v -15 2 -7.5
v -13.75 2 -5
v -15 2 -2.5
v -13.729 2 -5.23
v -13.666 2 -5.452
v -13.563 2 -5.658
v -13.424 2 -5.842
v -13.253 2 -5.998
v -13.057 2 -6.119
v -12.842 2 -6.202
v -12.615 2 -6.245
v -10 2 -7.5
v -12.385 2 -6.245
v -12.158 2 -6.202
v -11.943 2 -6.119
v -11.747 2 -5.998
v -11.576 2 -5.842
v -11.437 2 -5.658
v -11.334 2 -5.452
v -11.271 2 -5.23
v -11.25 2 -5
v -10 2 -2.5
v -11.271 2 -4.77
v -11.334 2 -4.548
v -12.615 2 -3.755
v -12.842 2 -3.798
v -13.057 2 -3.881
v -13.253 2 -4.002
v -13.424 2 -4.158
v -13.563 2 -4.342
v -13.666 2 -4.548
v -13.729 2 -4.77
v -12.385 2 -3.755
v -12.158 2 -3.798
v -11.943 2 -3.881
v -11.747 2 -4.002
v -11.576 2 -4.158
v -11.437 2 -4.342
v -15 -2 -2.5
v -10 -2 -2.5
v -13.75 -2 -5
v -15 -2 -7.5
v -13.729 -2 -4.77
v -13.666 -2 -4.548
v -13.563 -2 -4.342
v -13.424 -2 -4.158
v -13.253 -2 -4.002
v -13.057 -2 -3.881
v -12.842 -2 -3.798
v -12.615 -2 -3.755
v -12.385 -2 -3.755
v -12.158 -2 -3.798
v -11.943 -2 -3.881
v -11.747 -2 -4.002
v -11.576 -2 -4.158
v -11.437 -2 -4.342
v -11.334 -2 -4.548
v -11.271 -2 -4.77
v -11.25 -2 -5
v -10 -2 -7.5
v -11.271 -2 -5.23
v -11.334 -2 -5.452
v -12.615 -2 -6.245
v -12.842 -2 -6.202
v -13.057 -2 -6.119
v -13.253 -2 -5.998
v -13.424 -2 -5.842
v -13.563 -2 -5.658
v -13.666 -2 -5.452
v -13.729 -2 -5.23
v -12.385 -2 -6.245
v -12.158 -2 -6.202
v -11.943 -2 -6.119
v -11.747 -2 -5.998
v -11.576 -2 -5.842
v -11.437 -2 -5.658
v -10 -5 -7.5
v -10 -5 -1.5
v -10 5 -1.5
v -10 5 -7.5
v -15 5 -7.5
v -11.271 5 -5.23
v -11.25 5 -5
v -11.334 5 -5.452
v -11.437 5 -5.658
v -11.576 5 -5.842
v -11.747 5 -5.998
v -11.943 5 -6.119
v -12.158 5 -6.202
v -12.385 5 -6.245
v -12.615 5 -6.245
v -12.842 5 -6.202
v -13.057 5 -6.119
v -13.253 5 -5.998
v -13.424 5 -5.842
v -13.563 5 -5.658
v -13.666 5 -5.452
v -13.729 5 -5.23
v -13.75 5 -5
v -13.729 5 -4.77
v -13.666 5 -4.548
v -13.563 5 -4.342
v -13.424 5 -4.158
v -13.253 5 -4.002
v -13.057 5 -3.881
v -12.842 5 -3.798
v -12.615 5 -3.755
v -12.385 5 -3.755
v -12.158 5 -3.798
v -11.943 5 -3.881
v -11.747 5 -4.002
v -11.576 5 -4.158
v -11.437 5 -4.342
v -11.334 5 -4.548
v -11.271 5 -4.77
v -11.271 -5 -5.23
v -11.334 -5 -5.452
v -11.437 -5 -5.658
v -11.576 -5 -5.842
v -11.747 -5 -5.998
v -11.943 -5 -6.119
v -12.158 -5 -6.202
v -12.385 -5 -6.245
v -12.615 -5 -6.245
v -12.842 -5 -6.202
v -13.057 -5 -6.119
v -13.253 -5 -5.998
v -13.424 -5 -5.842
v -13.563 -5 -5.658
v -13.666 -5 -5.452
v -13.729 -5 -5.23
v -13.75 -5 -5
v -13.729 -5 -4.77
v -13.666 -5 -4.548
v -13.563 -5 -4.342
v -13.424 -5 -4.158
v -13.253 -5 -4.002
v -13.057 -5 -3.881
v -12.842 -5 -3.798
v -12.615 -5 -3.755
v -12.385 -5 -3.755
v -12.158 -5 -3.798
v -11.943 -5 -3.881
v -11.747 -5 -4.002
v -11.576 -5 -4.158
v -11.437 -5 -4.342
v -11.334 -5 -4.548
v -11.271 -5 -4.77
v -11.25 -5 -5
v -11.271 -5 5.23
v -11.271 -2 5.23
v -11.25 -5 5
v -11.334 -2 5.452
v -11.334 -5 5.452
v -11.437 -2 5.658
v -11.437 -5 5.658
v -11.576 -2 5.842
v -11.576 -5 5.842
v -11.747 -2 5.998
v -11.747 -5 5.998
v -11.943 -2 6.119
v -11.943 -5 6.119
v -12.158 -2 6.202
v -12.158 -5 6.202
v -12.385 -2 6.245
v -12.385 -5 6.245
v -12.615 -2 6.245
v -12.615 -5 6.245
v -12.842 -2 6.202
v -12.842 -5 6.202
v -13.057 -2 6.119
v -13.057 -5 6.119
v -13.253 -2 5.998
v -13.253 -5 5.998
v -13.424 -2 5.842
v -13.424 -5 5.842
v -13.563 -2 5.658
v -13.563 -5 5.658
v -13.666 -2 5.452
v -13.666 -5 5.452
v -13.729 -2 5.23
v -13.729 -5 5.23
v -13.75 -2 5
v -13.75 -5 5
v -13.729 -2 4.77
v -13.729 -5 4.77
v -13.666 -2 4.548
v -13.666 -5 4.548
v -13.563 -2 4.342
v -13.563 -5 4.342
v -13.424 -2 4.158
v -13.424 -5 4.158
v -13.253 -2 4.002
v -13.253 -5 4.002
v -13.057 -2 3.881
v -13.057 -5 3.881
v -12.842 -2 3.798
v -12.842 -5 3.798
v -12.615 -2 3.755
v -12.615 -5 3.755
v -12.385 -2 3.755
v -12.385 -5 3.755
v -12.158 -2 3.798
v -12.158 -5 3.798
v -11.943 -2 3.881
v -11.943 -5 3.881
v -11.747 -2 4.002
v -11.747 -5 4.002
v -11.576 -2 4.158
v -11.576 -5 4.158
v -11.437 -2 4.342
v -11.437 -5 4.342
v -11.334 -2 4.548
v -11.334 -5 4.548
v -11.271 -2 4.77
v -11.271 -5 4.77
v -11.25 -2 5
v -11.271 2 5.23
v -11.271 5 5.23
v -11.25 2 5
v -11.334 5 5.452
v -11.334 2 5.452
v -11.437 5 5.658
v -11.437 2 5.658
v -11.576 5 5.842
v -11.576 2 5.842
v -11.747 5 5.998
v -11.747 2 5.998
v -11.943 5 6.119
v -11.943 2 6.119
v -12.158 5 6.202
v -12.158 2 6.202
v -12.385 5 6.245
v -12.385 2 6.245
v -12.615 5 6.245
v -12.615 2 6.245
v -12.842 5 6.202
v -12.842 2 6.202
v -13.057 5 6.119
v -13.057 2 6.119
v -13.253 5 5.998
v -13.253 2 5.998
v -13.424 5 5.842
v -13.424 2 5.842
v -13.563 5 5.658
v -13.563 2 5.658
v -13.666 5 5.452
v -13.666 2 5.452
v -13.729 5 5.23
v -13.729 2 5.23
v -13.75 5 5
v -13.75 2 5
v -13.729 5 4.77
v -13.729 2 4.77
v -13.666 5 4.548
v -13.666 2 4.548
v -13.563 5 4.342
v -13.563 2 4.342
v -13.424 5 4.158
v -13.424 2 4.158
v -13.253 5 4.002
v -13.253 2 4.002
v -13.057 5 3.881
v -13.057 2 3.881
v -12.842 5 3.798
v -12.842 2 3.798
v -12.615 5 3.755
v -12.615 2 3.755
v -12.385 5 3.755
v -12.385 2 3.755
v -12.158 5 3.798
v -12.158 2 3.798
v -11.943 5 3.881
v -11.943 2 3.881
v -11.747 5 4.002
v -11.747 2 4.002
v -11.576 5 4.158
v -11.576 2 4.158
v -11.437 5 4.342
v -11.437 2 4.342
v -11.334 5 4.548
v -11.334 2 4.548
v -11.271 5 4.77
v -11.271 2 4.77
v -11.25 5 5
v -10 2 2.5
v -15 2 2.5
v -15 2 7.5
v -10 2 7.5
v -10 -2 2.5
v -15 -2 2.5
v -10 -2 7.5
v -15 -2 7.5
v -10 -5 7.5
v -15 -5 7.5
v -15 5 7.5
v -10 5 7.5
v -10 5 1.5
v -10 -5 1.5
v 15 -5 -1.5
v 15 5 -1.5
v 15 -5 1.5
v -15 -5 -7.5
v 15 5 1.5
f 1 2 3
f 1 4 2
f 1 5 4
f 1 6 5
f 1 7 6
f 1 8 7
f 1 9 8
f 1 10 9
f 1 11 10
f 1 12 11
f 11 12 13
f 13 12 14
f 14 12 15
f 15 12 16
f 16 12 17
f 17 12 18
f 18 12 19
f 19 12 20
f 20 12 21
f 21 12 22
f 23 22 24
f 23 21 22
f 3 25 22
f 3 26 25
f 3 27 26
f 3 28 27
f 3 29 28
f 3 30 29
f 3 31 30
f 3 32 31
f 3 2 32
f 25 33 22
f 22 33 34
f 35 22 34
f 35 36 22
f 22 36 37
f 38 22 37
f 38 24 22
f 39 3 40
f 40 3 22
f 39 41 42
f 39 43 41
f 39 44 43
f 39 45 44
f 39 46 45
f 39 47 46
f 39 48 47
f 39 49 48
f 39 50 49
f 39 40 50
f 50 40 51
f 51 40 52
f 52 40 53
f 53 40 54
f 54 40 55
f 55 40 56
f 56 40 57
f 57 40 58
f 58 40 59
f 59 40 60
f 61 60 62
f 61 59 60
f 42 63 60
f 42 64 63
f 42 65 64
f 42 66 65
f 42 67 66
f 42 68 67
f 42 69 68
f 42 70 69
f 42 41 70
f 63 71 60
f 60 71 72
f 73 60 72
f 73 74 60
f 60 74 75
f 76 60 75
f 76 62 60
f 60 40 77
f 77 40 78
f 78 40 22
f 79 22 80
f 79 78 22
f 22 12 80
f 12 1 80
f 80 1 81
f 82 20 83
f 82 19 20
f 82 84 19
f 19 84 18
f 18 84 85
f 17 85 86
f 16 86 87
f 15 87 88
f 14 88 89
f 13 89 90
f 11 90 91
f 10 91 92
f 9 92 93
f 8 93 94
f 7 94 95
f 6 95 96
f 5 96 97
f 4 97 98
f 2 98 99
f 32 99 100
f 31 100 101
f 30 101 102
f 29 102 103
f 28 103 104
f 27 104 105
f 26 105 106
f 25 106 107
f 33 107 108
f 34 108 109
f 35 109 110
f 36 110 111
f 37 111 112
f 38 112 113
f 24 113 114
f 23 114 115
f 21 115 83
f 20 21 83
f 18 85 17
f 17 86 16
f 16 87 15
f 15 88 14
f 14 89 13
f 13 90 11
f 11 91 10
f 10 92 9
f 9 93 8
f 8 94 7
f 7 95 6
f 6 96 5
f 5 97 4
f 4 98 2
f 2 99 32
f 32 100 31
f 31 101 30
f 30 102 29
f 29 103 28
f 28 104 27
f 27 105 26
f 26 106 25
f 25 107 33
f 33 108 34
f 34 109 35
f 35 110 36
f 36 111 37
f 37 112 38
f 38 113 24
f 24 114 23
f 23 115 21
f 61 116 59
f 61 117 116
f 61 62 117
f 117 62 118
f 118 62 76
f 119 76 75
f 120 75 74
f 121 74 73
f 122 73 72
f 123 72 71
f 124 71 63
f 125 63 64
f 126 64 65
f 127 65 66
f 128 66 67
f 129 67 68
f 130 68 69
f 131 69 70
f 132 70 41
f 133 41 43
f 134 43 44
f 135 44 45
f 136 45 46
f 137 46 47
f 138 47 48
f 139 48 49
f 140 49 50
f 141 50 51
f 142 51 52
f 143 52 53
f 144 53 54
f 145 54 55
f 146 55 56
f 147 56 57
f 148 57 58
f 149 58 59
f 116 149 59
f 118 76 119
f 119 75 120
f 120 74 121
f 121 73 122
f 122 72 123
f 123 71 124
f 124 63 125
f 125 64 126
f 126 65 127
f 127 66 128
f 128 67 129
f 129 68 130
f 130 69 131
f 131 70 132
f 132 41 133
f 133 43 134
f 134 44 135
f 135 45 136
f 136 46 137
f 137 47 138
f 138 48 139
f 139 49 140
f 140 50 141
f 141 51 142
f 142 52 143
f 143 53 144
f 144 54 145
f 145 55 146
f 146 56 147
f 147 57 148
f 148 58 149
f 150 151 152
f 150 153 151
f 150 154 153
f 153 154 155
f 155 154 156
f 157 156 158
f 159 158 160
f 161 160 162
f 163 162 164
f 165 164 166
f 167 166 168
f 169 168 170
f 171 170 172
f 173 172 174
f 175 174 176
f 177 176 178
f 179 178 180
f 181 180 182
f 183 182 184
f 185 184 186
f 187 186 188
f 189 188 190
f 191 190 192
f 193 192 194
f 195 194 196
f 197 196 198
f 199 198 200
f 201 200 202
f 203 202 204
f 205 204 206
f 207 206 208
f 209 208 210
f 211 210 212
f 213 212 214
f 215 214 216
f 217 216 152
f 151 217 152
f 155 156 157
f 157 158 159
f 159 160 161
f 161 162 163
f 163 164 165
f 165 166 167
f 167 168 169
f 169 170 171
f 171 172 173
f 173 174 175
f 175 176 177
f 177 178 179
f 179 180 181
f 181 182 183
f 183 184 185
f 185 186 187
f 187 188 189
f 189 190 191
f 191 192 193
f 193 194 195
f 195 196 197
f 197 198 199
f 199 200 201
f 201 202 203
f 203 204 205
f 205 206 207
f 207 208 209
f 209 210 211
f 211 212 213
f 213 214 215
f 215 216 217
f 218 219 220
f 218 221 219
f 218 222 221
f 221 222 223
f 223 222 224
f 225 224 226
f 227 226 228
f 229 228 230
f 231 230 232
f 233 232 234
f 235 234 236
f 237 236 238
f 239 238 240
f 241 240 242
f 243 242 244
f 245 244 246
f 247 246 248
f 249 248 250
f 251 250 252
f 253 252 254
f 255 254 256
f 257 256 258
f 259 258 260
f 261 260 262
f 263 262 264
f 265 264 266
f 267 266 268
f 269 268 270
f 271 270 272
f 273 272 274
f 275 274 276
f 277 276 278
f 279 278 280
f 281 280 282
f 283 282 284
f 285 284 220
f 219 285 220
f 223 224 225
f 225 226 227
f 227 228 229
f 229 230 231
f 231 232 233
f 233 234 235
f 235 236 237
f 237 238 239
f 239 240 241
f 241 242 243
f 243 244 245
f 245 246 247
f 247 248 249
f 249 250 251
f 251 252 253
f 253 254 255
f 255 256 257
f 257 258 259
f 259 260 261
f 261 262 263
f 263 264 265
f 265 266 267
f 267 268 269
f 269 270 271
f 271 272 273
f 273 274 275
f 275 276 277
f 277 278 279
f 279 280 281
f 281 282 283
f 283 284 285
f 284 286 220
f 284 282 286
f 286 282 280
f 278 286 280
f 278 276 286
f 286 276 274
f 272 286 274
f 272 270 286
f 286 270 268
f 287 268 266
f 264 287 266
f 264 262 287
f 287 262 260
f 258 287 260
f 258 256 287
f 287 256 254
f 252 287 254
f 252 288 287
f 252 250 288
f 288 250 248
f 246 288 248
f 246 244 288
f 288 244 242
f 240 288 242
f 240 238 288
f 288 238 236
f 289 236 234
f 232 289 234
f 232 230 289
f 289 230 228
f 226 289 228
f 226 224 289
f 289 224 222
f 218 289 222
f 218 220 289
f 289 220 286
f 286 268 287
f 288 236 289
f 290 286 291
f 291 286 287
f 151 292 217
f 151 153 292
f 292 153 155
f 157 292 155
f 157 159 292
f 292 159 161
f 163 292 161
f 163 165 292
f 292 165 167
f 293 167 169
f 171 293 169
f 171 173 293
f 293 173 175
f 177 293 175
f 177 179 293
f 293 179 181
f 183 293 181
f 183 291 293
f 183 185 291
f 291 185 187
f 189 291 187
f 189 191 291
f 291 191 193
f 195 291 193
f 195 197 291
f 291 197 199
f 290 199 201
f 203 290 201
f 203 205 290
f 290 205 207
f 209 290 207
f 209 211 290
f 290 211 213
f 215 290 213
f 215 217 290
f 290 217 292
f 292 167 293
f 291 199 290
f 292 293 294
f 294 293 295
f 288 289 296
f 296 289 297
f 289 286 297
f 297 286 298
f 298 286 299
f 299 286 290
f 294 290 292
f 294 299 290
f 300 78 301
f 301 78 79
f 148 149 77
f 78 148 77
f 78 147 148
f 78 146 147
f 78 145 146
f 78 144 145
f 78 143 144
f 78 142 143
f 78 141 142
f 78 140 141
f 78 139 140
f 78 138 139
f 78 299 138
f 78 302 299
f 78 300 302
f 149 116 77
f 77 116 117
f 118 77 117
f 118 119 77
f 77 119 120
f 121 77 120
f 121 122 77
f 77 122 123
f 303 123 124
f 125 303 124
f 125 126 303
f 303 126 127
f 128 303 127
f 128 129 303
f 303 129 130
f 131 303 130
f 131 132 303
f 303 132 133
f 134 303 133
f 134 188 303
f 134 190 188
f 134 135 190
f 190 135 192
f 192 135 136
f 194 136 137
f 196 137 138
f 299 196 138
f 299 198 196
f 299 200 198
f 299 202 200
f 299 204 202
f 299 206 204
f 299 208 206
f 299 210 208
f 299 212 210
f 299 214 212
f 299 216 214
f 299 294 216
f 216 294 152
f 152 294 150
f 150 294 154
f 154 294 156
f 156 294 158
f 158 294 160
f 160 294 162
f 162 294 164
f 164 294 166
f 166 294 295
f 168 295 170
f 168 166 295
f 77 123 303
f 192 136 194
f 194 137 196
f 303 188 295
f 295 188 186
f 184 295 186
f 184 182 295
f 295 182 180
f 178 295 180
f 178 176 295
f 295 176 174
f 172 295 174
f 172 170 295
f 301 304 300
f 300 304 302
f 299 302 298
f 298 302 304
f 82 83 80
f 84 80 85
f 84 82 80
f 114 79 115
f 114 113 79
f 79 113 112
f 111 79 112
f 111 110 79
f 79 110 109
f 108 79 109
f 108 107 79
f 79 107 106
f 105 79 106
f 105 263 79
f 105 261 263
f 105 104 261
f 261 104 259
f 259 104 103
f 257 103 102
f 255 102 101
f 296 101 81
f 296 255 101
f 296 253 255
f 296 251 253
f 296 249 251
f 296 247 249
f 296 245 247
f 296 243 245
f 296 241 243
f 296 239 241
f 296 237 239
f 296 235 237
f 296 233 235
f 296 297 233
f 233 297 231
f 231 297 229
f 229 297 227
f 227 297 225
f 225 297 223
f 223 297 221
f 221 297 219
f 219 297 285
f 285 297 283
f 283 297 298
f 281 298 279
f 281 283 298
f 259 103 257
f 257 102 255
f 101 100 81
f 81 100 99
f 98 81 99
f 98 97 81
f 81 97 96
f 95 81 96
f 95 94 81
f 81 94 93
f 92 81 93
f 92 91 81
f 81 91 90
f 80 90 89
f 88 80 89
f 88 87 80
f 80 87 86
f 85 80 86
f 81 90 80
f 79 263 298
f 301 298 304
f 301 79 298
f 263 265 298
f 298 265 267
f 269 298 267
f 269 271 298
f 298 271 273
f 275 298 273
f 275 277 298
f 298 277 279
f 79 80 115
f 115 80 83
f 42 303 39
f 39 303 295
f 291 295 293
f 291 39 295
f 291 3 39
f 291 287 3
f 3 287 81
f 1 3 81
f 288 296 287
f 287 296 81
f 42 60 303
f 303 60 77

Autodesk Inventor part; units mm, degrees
ref_plane "YZ Plane" through (0, 0, 0) normal (1, 0, 0) x (0, 1, 0)
ref_plane "XZ Plane" through (0, 0, 0) normal (0, 1, 0) x (-1, 0, 0)
ref_plane "XY Plane" through (0, 0, 0) normal (0, 0, 1) x (1, 0, 0)
sketch "スケッチ1" plane through (0, 0, 0) normal (0, 1, 0) x (-1, 0, 0)
  line L0 (-15, -7.5) -> (15, -7.5)
  line L1 (15, -7.5) -> (15, 7.5)
  line L2 (15, 7.5) -> (-15, 7.5)
  line L3 (-15, 7.5) -> (-15, -7.5)
  line L4 (-15, -7.5) -> (15, 7.5) construction
  line L5 (15, -7.5) -> (-15, 7.5) construction
  point P0 (0, 0)
  dimension "d0" = 30
  dimension "d1" = 15
extrude "押し出し1" add sketch "スケッチ1" along normal mid plane 10
sketch "スケッチ2" plane through (0, 0, 0) normal (0, 1, 0) x (-1, 0, 0)
  line L0 (15, 7.5) -> (-15, 7.5) projected
  line L1 (10, 7.5) -> (-15, 7.5)
  line L2 (-15, 7.5) -> (-15, 1.5)
  line L3 (-15, 1.5) -> (10, 1.5)
  line L4 (10, 1.5) -> (10, 7.5)
  point P0 (0, 0)
  dimension "d4" = 25
  dimension "d5" = 6
  dimension "d6" = 5
extrude "押し出し2" cut sketch "スケッチ2" along normal mid plane 10
sketch "スケッチ3" plane through (0, 0, 0) normal (0, 1, 0) x (-1, 0, 0)
  line L0 (15, -7.5) -> (-15, -7.5) projected
  line L1 (-15, -7.5) -> (10, -7.5)
  line L2 (10, -7.5) -> (10, -1.5)
  line L3 (10, -1.5) -> (-15, -1.5)
  line L4 (-15, -1.5) -> (-15, -7.5)
  point P0 (0, 0)
  dimension "d9" = 25
  dimension "d10" = 6
extrude "押し出し3" cut sketch "スケッチ3" along normal mid plane 10
sketch "スケッチ4" plane through (0, 0, 0) normal (1, 0, 0) x (0, 1, 0)
  line L0 (2, 7.5) -> (-2, 7.5)
  line L1 (-2, 7.5) -> (-2, 2.5)
  line L2 (-2, 2.5) -> (2, 2.5)
  line L3 (2, 2.5) -> (2, 7.5)
  point P0 (0, 0)
  dimension "d13" = 4
  dimension "d14" = 5
  dimension "d15" = 2
  dimension "d16" = 7.5
extrude "押し出し4" cut sketch "スケッチ4" against normal blind 15
sketch "スケッチ6" plane through (0, 5, 0) normal (0, 1, 0) x (1, 0, 0)
  circle A0 centre (-12.5, -5) radius 1.25
  line L0 (-15, -7.5) -> (-10, -7.5) projected
  point P0 (0, 0)
  dimension "d23" = 2.5
  dimension "d24" = 2.5
extrude "押し出し5" cut sketch "スケッチ6" against normal blind 15
sketch "スケッチ7" plane through (0, 5, 0) normal (0, 1, 0) x (1, 0, 0)
  circle A0 centre (-12.5, 5) radius 1.25
  line L0 (-10, 7.5) -> (-15, 7.5) projected
  line L1 (-15, 7.5) -> (-15, -7.5) projected
  point P0 (0, 0)
  dimension "d27" = 2.5
  dimension "d28" = 2.5
extrude "押し出し6" cut sketch "スケッチ7" against normal blind 15
sketch "スケッチ8" plane through (-10, -5, -1.5) normal (1, 0, 0) x (0, 0, -1)
  line L0 (1, 7) -> (6, 7)
  line L1 (6, 7) -> (6, 3)
  line L2 (6, 3) -> (1, 3)
  line L3 (1, 3) -> (1, 7)
  point P0 (-1.5, 5)
  dimension "d32" = 5
  dimension "d33" = 4
  dimension "d34" = 7.5
  dimension "d35" = 2
extrude "押し出し7" cut sketch "スケッチ8" against normal blind 15
properties part number "promo_hold"
